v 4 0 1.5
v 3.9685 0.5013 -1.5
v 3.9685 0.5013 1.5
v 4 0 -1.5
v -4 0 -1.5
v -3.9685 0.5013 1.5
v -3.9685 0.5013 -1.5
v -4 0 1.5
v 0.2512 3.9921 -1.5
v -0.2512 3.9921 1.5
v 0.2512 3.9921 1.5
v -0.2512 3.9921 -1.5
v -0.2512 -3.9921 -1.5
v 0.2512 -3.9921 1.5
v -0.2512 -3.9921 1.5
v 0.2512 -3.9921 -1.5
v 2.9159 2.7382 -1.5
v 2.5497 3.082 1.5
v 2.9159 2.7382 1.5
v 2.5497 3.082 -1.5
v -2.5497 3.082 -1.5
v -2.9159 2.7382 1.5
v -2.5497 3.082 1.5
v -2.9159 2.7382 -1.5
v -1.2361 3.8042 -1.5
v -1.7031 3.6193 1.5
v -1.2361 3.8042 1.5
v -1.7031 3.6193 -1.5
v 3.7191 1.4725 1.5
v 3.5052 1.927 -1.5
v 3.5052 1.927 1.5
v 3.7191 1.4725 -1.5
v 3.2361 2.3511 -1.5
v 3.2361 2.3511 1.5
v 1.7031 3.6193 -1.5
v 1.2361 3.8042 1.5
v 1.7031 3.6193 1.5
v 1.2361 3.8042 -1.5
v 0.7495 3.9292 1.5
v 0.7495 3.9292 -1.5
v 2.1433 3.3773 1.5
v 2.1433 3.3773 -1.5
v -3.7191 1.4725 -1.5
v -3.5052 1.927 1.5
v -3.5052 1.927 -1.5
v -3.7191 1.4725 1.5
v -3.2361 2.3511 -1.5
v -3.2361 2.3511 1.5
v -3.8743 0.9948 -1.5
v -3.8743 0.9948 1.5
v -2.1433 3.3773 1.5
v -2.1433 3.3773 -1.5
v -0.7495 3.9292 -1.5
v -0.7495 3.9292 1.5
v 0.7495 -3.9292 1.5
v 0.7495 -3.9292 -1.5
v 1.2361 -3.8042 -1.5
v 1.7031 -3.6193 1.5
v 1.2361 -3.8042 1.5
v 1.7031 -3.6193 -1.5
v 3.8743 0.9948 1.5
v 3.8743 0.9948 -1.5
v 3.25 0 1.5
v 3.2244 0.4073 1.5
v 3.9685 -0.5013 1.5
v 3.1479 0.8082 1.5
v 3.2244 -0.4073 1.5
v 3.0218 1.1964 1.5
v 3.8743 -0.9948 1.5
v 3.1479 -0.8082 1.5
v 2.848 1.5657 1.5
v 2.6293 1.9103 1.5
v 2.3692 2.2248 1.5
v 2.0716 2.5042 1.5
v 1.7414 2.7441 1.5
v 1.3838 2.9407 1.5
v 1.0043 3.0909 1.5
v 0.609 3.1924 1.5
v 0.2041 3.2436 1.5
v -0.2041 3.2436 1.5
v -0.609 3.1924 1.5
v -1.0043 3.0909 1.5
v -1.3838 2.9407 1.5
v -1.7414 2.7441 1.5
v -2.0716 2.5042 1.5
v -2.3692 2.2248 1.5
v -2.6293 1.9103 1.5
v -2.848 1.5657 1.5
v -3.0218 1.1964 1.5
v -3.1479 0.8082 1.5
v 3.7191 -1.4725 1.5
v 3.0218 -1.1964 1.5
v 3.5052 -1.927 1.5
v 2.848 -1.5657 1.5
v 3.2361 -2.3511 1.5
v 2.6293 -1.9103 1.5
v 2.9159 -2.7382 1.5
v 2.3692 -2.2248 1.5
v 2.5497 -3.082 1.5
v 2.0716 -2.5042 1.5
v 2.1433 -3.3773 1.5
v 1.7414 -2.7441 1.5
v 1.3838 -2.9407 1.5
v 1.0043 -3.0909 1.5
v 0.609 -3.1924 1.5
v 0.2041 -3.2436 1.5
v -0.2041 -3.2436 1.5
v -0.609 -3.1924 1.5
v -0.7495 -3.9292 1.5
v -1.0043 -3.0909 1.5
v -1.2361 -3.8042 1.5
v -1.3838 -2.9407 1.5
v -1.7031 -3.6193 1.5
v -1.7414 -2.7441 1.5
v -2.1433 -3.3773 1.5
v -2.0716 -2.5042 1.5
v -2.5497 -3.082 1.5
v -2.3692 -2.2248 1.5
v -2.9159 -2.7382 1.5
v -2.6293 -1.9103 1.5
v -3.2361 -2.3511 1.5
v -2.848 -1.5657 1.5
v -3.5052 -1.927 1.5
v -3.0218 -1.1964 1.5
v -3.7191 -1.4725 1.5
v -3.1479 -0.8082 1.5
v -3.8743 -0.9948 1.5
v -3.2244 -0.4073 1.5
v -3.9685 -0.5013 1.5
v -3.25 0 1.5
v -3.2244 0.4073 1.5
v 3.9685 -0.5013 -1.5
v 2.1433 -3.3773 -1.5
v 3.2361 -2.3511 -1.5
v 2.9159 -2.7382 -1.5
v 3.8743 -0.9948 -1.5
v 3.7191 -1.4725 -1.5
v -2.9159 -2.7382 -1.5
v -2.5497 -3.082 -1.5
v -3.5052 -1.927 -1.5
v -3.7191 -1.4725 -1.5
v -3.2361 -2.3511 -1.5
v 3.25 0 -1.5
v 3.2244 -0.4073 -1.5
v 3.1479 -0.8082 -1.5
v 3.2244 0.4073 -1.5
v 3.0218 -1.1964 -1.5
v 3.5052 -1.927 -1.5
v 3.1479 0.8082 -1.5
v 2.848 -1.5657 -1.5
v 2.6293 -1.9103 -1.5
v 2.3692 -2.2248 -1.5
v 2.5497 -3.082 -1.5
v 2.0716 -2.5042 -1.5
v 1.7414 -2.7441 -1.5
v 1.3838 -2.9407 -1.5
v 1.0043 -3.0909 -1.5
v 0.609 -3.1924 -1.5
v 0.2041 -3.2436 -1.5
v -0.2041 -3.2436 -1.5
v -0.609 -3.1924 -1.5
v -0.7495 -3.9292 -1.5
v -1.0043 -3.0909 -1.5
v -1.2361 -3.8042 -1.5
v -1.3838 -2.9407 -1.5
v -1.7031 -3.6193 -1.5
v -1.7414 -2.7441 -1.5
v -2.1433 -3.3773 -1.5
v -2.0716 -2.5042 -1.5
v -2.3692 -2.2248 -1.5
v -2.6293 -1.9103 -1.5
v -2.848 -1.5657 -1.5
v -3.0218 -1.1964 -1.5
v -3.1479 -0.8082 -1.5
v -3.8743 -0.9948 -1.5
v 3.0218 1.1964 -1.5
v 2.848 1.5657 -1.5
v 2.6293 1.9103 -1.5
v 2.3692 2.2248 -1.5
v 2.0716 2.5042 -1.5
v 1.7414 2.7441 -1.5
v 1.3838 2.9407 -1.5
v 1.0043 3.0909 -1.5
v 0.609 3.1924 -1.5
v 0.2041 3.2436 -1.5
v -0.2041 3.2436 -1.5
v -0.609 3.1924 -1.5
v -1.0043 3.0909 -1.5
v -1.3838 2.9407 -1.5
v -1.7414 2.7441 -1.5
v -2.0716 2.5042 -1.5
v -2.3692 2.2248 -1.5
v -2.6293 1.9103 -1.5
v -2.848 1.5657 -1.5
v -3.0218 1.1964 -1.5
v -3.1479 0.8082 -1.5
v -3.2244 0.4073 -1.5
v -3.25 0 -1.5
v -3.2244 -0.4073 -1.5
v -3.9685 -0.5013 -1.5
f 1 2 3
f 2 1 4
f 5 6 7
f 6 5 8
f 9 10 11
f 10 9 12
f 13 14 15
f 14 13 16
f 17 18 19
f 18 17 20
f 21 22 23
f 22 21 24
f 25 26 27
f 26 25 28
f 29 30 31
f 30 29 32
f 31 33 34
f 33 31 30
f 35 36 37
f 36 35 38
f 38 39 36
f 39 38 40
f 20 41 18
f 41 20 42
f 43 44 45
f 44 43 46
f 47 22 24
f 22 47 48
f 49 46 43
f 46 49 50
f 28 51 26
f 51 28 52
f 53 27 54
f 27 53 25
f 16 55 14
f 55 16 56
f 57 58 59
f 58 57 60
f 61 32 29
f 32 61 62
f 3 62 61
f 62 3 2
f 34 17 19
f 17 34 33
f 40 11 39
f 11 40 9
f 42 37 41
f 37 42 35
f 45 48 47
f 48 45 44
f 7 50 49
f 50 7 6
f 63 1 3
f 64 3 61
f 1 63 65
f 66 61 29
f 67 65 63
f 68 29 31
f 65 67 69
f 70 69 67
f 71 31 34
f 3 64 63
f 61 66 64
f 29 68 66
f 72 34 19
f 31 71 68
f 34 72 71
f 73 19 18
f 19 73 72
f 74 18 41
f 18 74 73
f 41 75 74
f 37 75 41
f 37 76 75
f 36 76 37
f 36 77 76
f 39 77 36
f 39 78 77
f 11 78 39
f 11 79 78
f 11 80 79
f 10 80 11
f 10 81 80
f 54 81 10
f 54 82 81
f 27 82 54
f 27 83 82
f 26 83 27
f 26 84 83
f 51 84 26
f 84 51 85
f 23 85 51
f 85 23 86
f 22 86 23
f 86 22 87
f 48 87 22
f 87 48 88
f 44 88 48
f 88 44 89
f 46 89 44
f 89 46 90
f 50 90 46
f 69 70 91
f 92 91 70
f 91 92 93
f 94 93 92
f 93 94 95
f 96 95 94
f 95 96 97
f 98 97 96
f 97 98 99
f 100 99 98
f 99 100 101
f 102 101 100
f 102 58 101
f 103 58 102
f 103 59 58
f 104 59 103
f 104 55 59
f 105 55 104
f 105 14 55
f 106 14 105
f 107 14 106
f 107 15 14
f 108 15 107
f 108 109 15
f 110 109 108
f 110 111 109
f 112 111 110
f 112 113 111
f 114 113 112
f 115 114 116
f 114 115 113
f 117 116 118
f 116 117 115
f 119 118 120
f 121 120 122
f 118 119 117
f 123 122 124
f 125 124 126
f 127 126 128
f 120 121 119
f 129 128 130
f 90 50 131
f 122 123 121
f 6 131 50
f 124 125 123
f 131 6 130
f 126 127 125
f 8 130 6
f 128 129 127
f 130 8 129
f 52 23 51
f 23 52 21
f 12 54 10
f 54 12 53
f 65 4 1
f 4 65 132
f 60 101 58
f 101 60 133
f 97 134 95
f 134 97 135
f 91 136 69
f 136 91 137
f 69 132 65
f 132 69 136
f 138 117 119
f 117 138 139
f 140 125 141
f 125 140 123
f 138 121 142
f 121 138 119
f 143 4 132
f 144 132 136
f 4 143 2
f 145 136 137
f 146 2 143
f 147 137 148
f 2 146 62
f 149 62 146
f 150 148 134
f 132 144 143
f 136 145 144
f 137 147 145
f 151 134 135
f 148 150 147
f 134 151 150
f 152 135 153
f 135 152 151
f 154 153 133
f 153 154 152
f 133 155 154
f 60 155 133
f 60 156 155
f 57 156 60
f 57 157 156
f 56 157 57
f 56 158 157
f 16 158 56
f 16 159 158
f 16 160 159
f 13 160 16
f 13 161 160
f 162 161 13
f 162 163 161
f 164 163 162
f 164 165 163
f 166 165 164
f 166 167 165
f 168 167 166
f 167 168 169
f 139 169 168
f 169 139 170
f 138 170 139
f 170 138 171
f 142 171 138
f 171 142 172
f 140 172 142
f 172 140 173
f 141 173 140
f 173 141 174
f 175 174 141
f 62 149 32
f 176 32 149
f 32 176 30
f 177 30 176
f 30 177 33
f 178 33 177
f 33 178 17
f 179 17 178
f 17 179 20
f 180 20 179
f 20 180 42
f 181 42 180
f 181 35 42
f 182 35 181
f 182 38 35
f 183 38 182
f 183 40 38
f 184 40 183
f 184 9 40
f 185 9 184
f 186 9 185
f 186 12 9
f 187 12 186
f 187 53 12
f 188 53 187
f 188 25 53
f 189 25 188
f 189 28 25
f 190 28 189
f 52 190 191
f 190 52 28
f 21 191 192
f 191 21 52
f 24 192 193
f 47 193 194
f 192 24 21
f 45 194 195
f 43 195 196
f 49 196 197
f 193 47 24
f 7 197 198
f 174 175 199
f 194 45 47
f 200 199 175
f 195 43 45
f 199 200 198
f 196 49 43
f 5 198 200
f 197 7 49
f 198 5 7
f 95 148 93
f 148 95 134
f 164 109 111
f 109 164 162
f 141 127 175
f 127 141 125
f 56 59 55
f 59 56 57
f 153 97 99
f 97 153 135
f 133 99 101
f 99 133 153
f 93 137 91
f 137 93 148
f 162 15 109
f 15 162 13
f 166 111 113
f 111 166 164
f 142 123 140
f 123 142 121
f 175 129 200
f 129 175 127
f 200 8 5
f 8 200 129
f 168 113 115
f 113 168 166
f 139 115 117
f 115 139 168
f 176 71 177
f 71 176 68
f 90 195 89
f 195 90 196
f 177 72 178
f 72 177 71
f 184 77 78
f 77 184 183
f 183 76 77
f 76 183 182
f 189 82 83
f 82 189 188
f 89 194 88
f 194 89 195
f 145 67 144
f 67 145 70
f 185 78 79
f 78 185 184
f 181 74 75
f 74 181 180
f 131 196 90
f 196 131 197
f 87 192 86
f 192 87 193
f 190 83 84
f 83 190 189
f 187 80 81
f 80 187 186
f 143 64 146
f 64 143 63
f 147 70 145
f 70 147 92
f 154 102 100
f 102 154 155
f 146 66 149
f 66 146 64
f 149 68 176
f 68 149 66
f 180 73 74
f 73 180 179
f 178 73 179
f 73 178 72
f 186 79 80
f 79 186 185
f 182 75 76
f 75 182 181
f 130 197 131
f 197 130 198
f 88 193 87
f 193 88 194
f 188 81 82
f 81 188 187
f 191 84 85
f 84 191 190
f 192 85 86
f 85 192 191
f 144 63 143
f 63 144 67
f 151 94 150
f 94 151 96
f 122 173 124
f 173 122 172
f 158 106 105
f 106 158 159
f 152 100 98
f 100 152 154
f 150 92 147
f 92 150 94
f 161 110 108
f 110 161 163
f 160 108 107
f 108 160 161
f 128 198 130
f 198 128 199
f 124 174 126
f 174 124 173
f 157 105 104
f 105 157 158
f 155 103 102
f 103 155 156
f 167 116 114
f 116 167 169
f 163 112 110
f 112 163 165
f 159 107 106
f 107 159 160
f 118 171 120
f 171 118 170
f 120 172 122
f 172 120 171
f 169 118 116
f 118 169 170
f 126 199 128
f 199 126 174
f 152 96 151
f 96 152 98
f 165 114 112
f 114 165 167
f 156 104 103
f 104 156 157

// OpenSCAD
$fn = 50;


difference() {
	union() {
		translate(v = [0, 0, -1.5000000000]) {
			cylinder(h = 3, r = 4.0000000000);
		}
	}
	union() {
		translate(v = [0, 0, -100.0000000000]) {
			cylinder(h = 200, r = 3.2500000000);
		}
	}
}
